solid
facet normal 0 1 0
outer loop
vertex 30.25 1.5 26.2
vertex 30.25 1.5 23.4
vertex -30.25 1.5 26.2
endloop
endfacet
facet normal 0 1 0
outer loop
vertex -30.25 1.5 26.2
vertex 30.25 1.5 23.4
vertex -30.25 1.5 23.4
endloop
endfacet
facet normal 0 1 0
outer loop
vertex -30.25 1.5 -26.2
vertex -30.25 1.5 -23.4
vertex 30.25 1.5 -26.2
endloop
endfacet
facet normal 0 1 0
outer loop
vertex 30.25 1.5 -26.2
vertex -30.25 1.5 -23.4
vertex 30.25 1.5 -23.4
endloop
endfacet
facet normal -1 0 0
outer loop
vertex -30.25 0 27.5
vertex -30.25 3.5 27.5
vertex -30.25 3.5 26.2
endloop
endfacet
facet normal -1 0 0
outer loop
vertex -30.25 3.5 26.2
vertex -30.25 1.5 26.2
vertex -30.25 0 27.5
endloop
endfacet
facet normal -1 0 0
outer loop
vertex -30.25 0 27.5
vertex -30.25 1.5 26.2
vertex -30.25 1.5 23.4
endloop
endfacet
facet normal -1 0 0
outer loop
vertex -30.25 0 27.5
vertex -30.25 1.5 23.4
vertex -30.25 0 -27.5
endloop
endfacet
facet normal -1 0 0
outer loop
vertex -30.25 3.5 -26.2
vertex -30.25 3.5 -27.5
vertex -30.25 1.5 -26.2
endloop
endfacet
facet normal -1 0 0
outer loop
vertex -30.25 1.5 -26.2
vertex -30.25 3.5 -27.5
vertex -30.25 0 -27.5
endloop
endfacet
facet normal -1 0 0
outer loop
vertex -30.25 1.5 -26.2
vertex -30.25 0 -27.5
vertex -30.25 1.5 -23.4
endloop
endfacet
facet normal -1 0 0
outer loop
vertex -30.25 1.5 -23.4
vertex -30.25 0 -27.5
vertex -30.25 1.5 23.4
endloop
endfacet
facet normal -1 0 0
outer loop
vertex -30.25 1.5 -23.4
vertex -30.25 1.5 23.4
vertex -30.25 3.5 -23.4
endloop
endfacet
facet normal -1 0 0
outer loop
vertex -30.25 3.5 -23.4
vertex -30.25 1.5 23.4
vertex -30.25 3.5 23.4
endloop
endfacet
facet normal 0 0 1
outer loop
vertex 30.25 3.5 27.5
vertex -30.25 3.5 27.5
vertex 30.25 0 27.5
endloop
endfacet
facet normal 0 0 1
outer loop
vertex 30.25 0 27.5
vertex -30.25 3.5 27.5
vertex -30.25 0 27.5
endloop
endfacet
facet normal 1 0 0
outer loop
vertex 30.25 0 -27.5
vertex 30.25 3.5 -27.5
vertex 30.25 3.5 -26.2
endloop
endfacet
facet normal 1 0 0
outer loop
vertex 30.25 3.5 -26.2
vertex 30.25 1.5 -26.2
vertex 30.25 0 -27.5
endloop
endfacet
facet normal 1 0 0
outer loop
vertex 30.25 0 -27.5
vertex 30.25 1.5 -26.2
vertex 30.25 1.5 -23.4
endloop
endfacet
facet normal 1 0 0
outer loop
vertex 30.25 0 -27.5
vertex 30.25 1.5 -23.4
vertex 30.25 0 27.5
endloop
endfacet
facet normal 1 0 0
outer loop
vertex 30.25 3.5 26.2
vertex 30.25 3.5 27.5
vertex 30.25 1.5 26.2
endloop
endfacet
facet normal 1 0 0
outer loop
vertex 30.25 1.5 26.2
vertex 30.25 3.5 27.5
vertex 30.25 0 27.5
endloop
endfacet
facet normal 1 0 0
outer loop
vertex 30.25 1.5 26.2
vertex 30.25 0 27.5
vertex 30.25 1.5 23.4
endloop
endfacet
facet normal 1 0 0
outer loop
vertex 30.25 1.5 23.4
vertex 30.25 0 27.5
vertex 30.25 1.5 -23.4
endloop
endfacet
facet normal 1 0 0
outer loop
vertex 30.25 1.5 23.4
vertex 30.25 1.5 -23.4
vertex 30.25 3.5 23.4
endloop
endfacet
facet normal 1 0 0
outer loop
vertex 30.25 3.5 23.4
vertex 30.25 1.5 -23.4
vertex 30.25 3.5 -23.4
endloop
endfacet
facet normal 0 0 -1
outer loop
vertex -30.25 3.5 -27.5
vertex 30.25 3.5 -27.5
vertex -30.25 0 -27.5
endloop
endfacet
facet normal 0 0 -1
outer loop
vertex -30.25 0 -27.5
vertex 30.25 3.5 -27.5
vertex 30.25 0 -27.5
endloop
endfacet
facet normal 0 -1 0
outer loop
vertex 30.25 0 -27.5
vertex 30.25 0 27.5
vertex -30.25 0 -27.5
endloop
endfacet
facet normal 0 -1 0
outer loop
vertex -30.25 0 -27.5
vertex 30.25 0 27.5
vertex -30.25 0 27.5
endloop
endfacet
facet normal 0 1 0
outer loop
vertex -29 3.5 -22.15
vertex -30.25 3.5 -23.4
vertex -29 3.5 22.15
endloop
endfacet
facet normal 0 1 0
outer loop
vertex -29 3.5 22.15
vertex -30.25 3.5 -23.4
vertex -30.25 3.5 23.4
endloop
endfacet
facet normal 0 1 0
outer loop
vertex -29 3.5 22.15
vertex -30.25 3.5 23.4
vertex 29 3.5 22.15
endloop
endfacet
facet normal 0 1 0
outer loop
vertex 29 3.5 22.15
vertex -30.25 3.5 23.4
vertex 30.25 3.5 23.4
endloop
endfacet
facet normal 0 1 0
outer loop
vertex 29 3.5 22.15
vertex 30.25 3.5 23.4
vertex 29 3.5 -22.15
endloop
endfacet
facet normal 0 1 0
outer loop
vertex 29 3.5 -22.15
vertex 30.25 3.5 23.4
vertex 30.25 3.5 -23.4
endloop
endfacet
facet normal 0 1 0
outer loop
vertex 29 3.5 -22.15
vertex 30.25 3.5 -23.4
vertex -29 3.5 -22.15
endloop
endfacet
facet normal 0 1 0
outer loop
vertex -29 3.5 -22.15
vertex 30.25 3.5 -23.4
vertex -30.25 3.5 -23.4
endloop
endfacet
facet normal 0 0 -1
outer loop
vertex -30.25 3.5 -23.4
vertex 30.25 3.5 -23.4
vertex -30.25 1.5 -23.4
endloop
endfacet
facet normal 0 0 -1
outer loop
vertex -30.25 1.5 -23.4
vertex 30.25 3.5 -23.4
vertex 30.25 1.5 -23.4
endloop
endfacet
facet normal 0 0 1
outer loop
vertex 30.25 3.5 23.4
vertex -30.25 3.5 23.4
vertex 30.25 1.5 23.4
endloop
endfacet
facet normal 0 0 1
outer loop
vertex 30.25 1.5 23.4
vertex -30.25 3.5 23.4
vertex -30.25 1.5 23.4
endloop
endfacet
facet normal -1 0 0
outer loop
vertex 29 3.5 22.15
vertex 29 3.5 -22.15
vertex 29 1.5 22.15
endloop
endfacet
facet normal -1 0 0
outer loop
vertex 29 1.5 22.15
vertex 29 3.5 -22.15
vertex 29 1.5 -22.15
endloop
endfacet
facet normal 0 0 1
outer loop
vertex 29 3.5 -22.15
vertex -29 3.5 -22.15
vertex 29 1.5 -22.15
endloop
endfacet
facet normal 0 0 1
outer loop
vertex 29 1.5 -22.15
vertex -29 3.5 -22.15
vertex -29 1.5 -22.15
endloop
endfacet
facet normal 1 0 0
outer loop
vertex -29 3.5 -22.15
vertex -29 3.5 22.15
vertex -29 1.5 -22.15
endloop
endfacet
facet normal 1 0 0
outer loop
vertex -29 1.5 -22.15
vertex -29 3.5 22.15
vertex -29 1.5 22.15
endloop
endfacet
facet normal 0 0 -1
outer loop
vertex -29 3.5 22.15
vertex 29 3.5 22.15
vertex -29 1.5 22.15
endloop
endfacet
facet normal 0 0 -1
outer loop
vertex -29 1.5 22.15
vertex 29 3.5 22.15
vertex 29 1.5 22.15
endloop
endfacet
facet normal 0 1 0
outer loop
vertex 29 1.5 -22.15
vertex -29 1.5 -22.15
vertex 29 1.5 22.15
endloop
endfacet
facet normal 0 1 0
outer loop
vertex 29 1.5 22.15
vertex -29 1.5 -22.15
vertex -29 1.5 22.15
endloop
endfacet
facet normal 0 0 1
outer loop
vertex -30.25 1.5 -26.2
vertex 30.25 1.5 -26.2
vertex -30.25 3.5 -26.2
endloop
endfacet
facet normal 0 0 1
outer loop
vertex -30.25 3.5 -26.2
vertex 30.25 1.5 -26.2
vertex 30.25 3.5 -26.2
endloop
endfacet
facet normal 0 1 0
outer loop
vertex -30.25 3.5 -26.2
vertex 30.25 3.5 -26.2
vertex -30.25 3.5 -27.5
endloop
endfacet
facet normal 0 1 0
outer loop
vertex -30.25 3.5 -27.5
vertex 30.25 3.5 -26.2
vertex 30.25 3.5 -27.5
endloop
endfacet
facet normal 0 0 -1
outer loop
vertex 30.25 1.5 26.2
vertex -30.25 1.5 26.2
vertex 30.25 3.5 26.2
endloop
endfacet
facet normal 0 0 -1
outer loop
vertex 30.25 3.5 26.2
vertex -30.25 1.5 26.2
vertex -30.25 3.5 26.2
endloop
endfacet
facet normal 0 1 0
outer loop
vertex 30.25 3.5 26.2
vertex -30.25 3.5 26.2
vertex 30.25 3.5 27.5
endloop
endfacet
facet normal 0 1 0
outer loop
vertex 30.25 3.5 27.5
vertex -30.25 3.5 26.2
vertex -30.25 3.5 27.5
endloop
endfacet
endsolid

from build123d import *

# Parameters (mm, degrees)
SKETCH1_W           = 60.5
SKETCH1_H           = 55
BOSS_EXTRUDE1_DEPTH = 1.5
SKETCH2_W           = 60.5
SKETCH2_H           = 46.8
SKETCH2_W_2         = 58
SKETCH2_H_2         = 44.3
BOSS_EXTRUDE2_DEPTH = 2
SKETCH3_W           = 60.5
SKETCH3_H           = 1.3
BOSS_EXTRUDE3_DEPTH = 2


with BuildPart() as part:
    # Sketch1 → Boss-Extrude1 (new body)
    with BuildSketch(Plane(origin=(0, 0, 0), x_dir=(1, 0, 0), z_dir=(0, 1, 0))):
        Rectangle(SKETCH1_W, SKETCH1_H)
    extrude(amount=BOSS_EXTRUDE1_DEPTH)

    # Sketch2 → Boss-Extrude2 (add)
    with BuildSketch(Plane(origin=(0, 1.5, 0), x_dir=(1, 0, 0), z_dir=(0, 1, 0))):
        Rectangle(SKETCH2_W, SKETCH2_H)
        Rectangle(SKETCH2_W_2, SKETCH2_H_2, mode=Mode.SUBTRACT)
    extrude(amount=BOSS_EXTRUDE2_DEPTH)

    # Sketch3 → Boss-Extrude3 (add)
    with BuildSketch(Plane(origin=(0, 1.5, 0), x_dir=(1, 0, 0), z_dir=(0, 1, 0))):
        with Locations((0, 26.85)):
            Rectangle(SKETCH3_W, SKETCH3_H)
        with Locations((0, -26.85)):
            Rectangle(SKETCH3_W, SKETCH3_H)
    extrude(amount=BOSS_EXTRUDE3_DEPTH)


solid = part.part
